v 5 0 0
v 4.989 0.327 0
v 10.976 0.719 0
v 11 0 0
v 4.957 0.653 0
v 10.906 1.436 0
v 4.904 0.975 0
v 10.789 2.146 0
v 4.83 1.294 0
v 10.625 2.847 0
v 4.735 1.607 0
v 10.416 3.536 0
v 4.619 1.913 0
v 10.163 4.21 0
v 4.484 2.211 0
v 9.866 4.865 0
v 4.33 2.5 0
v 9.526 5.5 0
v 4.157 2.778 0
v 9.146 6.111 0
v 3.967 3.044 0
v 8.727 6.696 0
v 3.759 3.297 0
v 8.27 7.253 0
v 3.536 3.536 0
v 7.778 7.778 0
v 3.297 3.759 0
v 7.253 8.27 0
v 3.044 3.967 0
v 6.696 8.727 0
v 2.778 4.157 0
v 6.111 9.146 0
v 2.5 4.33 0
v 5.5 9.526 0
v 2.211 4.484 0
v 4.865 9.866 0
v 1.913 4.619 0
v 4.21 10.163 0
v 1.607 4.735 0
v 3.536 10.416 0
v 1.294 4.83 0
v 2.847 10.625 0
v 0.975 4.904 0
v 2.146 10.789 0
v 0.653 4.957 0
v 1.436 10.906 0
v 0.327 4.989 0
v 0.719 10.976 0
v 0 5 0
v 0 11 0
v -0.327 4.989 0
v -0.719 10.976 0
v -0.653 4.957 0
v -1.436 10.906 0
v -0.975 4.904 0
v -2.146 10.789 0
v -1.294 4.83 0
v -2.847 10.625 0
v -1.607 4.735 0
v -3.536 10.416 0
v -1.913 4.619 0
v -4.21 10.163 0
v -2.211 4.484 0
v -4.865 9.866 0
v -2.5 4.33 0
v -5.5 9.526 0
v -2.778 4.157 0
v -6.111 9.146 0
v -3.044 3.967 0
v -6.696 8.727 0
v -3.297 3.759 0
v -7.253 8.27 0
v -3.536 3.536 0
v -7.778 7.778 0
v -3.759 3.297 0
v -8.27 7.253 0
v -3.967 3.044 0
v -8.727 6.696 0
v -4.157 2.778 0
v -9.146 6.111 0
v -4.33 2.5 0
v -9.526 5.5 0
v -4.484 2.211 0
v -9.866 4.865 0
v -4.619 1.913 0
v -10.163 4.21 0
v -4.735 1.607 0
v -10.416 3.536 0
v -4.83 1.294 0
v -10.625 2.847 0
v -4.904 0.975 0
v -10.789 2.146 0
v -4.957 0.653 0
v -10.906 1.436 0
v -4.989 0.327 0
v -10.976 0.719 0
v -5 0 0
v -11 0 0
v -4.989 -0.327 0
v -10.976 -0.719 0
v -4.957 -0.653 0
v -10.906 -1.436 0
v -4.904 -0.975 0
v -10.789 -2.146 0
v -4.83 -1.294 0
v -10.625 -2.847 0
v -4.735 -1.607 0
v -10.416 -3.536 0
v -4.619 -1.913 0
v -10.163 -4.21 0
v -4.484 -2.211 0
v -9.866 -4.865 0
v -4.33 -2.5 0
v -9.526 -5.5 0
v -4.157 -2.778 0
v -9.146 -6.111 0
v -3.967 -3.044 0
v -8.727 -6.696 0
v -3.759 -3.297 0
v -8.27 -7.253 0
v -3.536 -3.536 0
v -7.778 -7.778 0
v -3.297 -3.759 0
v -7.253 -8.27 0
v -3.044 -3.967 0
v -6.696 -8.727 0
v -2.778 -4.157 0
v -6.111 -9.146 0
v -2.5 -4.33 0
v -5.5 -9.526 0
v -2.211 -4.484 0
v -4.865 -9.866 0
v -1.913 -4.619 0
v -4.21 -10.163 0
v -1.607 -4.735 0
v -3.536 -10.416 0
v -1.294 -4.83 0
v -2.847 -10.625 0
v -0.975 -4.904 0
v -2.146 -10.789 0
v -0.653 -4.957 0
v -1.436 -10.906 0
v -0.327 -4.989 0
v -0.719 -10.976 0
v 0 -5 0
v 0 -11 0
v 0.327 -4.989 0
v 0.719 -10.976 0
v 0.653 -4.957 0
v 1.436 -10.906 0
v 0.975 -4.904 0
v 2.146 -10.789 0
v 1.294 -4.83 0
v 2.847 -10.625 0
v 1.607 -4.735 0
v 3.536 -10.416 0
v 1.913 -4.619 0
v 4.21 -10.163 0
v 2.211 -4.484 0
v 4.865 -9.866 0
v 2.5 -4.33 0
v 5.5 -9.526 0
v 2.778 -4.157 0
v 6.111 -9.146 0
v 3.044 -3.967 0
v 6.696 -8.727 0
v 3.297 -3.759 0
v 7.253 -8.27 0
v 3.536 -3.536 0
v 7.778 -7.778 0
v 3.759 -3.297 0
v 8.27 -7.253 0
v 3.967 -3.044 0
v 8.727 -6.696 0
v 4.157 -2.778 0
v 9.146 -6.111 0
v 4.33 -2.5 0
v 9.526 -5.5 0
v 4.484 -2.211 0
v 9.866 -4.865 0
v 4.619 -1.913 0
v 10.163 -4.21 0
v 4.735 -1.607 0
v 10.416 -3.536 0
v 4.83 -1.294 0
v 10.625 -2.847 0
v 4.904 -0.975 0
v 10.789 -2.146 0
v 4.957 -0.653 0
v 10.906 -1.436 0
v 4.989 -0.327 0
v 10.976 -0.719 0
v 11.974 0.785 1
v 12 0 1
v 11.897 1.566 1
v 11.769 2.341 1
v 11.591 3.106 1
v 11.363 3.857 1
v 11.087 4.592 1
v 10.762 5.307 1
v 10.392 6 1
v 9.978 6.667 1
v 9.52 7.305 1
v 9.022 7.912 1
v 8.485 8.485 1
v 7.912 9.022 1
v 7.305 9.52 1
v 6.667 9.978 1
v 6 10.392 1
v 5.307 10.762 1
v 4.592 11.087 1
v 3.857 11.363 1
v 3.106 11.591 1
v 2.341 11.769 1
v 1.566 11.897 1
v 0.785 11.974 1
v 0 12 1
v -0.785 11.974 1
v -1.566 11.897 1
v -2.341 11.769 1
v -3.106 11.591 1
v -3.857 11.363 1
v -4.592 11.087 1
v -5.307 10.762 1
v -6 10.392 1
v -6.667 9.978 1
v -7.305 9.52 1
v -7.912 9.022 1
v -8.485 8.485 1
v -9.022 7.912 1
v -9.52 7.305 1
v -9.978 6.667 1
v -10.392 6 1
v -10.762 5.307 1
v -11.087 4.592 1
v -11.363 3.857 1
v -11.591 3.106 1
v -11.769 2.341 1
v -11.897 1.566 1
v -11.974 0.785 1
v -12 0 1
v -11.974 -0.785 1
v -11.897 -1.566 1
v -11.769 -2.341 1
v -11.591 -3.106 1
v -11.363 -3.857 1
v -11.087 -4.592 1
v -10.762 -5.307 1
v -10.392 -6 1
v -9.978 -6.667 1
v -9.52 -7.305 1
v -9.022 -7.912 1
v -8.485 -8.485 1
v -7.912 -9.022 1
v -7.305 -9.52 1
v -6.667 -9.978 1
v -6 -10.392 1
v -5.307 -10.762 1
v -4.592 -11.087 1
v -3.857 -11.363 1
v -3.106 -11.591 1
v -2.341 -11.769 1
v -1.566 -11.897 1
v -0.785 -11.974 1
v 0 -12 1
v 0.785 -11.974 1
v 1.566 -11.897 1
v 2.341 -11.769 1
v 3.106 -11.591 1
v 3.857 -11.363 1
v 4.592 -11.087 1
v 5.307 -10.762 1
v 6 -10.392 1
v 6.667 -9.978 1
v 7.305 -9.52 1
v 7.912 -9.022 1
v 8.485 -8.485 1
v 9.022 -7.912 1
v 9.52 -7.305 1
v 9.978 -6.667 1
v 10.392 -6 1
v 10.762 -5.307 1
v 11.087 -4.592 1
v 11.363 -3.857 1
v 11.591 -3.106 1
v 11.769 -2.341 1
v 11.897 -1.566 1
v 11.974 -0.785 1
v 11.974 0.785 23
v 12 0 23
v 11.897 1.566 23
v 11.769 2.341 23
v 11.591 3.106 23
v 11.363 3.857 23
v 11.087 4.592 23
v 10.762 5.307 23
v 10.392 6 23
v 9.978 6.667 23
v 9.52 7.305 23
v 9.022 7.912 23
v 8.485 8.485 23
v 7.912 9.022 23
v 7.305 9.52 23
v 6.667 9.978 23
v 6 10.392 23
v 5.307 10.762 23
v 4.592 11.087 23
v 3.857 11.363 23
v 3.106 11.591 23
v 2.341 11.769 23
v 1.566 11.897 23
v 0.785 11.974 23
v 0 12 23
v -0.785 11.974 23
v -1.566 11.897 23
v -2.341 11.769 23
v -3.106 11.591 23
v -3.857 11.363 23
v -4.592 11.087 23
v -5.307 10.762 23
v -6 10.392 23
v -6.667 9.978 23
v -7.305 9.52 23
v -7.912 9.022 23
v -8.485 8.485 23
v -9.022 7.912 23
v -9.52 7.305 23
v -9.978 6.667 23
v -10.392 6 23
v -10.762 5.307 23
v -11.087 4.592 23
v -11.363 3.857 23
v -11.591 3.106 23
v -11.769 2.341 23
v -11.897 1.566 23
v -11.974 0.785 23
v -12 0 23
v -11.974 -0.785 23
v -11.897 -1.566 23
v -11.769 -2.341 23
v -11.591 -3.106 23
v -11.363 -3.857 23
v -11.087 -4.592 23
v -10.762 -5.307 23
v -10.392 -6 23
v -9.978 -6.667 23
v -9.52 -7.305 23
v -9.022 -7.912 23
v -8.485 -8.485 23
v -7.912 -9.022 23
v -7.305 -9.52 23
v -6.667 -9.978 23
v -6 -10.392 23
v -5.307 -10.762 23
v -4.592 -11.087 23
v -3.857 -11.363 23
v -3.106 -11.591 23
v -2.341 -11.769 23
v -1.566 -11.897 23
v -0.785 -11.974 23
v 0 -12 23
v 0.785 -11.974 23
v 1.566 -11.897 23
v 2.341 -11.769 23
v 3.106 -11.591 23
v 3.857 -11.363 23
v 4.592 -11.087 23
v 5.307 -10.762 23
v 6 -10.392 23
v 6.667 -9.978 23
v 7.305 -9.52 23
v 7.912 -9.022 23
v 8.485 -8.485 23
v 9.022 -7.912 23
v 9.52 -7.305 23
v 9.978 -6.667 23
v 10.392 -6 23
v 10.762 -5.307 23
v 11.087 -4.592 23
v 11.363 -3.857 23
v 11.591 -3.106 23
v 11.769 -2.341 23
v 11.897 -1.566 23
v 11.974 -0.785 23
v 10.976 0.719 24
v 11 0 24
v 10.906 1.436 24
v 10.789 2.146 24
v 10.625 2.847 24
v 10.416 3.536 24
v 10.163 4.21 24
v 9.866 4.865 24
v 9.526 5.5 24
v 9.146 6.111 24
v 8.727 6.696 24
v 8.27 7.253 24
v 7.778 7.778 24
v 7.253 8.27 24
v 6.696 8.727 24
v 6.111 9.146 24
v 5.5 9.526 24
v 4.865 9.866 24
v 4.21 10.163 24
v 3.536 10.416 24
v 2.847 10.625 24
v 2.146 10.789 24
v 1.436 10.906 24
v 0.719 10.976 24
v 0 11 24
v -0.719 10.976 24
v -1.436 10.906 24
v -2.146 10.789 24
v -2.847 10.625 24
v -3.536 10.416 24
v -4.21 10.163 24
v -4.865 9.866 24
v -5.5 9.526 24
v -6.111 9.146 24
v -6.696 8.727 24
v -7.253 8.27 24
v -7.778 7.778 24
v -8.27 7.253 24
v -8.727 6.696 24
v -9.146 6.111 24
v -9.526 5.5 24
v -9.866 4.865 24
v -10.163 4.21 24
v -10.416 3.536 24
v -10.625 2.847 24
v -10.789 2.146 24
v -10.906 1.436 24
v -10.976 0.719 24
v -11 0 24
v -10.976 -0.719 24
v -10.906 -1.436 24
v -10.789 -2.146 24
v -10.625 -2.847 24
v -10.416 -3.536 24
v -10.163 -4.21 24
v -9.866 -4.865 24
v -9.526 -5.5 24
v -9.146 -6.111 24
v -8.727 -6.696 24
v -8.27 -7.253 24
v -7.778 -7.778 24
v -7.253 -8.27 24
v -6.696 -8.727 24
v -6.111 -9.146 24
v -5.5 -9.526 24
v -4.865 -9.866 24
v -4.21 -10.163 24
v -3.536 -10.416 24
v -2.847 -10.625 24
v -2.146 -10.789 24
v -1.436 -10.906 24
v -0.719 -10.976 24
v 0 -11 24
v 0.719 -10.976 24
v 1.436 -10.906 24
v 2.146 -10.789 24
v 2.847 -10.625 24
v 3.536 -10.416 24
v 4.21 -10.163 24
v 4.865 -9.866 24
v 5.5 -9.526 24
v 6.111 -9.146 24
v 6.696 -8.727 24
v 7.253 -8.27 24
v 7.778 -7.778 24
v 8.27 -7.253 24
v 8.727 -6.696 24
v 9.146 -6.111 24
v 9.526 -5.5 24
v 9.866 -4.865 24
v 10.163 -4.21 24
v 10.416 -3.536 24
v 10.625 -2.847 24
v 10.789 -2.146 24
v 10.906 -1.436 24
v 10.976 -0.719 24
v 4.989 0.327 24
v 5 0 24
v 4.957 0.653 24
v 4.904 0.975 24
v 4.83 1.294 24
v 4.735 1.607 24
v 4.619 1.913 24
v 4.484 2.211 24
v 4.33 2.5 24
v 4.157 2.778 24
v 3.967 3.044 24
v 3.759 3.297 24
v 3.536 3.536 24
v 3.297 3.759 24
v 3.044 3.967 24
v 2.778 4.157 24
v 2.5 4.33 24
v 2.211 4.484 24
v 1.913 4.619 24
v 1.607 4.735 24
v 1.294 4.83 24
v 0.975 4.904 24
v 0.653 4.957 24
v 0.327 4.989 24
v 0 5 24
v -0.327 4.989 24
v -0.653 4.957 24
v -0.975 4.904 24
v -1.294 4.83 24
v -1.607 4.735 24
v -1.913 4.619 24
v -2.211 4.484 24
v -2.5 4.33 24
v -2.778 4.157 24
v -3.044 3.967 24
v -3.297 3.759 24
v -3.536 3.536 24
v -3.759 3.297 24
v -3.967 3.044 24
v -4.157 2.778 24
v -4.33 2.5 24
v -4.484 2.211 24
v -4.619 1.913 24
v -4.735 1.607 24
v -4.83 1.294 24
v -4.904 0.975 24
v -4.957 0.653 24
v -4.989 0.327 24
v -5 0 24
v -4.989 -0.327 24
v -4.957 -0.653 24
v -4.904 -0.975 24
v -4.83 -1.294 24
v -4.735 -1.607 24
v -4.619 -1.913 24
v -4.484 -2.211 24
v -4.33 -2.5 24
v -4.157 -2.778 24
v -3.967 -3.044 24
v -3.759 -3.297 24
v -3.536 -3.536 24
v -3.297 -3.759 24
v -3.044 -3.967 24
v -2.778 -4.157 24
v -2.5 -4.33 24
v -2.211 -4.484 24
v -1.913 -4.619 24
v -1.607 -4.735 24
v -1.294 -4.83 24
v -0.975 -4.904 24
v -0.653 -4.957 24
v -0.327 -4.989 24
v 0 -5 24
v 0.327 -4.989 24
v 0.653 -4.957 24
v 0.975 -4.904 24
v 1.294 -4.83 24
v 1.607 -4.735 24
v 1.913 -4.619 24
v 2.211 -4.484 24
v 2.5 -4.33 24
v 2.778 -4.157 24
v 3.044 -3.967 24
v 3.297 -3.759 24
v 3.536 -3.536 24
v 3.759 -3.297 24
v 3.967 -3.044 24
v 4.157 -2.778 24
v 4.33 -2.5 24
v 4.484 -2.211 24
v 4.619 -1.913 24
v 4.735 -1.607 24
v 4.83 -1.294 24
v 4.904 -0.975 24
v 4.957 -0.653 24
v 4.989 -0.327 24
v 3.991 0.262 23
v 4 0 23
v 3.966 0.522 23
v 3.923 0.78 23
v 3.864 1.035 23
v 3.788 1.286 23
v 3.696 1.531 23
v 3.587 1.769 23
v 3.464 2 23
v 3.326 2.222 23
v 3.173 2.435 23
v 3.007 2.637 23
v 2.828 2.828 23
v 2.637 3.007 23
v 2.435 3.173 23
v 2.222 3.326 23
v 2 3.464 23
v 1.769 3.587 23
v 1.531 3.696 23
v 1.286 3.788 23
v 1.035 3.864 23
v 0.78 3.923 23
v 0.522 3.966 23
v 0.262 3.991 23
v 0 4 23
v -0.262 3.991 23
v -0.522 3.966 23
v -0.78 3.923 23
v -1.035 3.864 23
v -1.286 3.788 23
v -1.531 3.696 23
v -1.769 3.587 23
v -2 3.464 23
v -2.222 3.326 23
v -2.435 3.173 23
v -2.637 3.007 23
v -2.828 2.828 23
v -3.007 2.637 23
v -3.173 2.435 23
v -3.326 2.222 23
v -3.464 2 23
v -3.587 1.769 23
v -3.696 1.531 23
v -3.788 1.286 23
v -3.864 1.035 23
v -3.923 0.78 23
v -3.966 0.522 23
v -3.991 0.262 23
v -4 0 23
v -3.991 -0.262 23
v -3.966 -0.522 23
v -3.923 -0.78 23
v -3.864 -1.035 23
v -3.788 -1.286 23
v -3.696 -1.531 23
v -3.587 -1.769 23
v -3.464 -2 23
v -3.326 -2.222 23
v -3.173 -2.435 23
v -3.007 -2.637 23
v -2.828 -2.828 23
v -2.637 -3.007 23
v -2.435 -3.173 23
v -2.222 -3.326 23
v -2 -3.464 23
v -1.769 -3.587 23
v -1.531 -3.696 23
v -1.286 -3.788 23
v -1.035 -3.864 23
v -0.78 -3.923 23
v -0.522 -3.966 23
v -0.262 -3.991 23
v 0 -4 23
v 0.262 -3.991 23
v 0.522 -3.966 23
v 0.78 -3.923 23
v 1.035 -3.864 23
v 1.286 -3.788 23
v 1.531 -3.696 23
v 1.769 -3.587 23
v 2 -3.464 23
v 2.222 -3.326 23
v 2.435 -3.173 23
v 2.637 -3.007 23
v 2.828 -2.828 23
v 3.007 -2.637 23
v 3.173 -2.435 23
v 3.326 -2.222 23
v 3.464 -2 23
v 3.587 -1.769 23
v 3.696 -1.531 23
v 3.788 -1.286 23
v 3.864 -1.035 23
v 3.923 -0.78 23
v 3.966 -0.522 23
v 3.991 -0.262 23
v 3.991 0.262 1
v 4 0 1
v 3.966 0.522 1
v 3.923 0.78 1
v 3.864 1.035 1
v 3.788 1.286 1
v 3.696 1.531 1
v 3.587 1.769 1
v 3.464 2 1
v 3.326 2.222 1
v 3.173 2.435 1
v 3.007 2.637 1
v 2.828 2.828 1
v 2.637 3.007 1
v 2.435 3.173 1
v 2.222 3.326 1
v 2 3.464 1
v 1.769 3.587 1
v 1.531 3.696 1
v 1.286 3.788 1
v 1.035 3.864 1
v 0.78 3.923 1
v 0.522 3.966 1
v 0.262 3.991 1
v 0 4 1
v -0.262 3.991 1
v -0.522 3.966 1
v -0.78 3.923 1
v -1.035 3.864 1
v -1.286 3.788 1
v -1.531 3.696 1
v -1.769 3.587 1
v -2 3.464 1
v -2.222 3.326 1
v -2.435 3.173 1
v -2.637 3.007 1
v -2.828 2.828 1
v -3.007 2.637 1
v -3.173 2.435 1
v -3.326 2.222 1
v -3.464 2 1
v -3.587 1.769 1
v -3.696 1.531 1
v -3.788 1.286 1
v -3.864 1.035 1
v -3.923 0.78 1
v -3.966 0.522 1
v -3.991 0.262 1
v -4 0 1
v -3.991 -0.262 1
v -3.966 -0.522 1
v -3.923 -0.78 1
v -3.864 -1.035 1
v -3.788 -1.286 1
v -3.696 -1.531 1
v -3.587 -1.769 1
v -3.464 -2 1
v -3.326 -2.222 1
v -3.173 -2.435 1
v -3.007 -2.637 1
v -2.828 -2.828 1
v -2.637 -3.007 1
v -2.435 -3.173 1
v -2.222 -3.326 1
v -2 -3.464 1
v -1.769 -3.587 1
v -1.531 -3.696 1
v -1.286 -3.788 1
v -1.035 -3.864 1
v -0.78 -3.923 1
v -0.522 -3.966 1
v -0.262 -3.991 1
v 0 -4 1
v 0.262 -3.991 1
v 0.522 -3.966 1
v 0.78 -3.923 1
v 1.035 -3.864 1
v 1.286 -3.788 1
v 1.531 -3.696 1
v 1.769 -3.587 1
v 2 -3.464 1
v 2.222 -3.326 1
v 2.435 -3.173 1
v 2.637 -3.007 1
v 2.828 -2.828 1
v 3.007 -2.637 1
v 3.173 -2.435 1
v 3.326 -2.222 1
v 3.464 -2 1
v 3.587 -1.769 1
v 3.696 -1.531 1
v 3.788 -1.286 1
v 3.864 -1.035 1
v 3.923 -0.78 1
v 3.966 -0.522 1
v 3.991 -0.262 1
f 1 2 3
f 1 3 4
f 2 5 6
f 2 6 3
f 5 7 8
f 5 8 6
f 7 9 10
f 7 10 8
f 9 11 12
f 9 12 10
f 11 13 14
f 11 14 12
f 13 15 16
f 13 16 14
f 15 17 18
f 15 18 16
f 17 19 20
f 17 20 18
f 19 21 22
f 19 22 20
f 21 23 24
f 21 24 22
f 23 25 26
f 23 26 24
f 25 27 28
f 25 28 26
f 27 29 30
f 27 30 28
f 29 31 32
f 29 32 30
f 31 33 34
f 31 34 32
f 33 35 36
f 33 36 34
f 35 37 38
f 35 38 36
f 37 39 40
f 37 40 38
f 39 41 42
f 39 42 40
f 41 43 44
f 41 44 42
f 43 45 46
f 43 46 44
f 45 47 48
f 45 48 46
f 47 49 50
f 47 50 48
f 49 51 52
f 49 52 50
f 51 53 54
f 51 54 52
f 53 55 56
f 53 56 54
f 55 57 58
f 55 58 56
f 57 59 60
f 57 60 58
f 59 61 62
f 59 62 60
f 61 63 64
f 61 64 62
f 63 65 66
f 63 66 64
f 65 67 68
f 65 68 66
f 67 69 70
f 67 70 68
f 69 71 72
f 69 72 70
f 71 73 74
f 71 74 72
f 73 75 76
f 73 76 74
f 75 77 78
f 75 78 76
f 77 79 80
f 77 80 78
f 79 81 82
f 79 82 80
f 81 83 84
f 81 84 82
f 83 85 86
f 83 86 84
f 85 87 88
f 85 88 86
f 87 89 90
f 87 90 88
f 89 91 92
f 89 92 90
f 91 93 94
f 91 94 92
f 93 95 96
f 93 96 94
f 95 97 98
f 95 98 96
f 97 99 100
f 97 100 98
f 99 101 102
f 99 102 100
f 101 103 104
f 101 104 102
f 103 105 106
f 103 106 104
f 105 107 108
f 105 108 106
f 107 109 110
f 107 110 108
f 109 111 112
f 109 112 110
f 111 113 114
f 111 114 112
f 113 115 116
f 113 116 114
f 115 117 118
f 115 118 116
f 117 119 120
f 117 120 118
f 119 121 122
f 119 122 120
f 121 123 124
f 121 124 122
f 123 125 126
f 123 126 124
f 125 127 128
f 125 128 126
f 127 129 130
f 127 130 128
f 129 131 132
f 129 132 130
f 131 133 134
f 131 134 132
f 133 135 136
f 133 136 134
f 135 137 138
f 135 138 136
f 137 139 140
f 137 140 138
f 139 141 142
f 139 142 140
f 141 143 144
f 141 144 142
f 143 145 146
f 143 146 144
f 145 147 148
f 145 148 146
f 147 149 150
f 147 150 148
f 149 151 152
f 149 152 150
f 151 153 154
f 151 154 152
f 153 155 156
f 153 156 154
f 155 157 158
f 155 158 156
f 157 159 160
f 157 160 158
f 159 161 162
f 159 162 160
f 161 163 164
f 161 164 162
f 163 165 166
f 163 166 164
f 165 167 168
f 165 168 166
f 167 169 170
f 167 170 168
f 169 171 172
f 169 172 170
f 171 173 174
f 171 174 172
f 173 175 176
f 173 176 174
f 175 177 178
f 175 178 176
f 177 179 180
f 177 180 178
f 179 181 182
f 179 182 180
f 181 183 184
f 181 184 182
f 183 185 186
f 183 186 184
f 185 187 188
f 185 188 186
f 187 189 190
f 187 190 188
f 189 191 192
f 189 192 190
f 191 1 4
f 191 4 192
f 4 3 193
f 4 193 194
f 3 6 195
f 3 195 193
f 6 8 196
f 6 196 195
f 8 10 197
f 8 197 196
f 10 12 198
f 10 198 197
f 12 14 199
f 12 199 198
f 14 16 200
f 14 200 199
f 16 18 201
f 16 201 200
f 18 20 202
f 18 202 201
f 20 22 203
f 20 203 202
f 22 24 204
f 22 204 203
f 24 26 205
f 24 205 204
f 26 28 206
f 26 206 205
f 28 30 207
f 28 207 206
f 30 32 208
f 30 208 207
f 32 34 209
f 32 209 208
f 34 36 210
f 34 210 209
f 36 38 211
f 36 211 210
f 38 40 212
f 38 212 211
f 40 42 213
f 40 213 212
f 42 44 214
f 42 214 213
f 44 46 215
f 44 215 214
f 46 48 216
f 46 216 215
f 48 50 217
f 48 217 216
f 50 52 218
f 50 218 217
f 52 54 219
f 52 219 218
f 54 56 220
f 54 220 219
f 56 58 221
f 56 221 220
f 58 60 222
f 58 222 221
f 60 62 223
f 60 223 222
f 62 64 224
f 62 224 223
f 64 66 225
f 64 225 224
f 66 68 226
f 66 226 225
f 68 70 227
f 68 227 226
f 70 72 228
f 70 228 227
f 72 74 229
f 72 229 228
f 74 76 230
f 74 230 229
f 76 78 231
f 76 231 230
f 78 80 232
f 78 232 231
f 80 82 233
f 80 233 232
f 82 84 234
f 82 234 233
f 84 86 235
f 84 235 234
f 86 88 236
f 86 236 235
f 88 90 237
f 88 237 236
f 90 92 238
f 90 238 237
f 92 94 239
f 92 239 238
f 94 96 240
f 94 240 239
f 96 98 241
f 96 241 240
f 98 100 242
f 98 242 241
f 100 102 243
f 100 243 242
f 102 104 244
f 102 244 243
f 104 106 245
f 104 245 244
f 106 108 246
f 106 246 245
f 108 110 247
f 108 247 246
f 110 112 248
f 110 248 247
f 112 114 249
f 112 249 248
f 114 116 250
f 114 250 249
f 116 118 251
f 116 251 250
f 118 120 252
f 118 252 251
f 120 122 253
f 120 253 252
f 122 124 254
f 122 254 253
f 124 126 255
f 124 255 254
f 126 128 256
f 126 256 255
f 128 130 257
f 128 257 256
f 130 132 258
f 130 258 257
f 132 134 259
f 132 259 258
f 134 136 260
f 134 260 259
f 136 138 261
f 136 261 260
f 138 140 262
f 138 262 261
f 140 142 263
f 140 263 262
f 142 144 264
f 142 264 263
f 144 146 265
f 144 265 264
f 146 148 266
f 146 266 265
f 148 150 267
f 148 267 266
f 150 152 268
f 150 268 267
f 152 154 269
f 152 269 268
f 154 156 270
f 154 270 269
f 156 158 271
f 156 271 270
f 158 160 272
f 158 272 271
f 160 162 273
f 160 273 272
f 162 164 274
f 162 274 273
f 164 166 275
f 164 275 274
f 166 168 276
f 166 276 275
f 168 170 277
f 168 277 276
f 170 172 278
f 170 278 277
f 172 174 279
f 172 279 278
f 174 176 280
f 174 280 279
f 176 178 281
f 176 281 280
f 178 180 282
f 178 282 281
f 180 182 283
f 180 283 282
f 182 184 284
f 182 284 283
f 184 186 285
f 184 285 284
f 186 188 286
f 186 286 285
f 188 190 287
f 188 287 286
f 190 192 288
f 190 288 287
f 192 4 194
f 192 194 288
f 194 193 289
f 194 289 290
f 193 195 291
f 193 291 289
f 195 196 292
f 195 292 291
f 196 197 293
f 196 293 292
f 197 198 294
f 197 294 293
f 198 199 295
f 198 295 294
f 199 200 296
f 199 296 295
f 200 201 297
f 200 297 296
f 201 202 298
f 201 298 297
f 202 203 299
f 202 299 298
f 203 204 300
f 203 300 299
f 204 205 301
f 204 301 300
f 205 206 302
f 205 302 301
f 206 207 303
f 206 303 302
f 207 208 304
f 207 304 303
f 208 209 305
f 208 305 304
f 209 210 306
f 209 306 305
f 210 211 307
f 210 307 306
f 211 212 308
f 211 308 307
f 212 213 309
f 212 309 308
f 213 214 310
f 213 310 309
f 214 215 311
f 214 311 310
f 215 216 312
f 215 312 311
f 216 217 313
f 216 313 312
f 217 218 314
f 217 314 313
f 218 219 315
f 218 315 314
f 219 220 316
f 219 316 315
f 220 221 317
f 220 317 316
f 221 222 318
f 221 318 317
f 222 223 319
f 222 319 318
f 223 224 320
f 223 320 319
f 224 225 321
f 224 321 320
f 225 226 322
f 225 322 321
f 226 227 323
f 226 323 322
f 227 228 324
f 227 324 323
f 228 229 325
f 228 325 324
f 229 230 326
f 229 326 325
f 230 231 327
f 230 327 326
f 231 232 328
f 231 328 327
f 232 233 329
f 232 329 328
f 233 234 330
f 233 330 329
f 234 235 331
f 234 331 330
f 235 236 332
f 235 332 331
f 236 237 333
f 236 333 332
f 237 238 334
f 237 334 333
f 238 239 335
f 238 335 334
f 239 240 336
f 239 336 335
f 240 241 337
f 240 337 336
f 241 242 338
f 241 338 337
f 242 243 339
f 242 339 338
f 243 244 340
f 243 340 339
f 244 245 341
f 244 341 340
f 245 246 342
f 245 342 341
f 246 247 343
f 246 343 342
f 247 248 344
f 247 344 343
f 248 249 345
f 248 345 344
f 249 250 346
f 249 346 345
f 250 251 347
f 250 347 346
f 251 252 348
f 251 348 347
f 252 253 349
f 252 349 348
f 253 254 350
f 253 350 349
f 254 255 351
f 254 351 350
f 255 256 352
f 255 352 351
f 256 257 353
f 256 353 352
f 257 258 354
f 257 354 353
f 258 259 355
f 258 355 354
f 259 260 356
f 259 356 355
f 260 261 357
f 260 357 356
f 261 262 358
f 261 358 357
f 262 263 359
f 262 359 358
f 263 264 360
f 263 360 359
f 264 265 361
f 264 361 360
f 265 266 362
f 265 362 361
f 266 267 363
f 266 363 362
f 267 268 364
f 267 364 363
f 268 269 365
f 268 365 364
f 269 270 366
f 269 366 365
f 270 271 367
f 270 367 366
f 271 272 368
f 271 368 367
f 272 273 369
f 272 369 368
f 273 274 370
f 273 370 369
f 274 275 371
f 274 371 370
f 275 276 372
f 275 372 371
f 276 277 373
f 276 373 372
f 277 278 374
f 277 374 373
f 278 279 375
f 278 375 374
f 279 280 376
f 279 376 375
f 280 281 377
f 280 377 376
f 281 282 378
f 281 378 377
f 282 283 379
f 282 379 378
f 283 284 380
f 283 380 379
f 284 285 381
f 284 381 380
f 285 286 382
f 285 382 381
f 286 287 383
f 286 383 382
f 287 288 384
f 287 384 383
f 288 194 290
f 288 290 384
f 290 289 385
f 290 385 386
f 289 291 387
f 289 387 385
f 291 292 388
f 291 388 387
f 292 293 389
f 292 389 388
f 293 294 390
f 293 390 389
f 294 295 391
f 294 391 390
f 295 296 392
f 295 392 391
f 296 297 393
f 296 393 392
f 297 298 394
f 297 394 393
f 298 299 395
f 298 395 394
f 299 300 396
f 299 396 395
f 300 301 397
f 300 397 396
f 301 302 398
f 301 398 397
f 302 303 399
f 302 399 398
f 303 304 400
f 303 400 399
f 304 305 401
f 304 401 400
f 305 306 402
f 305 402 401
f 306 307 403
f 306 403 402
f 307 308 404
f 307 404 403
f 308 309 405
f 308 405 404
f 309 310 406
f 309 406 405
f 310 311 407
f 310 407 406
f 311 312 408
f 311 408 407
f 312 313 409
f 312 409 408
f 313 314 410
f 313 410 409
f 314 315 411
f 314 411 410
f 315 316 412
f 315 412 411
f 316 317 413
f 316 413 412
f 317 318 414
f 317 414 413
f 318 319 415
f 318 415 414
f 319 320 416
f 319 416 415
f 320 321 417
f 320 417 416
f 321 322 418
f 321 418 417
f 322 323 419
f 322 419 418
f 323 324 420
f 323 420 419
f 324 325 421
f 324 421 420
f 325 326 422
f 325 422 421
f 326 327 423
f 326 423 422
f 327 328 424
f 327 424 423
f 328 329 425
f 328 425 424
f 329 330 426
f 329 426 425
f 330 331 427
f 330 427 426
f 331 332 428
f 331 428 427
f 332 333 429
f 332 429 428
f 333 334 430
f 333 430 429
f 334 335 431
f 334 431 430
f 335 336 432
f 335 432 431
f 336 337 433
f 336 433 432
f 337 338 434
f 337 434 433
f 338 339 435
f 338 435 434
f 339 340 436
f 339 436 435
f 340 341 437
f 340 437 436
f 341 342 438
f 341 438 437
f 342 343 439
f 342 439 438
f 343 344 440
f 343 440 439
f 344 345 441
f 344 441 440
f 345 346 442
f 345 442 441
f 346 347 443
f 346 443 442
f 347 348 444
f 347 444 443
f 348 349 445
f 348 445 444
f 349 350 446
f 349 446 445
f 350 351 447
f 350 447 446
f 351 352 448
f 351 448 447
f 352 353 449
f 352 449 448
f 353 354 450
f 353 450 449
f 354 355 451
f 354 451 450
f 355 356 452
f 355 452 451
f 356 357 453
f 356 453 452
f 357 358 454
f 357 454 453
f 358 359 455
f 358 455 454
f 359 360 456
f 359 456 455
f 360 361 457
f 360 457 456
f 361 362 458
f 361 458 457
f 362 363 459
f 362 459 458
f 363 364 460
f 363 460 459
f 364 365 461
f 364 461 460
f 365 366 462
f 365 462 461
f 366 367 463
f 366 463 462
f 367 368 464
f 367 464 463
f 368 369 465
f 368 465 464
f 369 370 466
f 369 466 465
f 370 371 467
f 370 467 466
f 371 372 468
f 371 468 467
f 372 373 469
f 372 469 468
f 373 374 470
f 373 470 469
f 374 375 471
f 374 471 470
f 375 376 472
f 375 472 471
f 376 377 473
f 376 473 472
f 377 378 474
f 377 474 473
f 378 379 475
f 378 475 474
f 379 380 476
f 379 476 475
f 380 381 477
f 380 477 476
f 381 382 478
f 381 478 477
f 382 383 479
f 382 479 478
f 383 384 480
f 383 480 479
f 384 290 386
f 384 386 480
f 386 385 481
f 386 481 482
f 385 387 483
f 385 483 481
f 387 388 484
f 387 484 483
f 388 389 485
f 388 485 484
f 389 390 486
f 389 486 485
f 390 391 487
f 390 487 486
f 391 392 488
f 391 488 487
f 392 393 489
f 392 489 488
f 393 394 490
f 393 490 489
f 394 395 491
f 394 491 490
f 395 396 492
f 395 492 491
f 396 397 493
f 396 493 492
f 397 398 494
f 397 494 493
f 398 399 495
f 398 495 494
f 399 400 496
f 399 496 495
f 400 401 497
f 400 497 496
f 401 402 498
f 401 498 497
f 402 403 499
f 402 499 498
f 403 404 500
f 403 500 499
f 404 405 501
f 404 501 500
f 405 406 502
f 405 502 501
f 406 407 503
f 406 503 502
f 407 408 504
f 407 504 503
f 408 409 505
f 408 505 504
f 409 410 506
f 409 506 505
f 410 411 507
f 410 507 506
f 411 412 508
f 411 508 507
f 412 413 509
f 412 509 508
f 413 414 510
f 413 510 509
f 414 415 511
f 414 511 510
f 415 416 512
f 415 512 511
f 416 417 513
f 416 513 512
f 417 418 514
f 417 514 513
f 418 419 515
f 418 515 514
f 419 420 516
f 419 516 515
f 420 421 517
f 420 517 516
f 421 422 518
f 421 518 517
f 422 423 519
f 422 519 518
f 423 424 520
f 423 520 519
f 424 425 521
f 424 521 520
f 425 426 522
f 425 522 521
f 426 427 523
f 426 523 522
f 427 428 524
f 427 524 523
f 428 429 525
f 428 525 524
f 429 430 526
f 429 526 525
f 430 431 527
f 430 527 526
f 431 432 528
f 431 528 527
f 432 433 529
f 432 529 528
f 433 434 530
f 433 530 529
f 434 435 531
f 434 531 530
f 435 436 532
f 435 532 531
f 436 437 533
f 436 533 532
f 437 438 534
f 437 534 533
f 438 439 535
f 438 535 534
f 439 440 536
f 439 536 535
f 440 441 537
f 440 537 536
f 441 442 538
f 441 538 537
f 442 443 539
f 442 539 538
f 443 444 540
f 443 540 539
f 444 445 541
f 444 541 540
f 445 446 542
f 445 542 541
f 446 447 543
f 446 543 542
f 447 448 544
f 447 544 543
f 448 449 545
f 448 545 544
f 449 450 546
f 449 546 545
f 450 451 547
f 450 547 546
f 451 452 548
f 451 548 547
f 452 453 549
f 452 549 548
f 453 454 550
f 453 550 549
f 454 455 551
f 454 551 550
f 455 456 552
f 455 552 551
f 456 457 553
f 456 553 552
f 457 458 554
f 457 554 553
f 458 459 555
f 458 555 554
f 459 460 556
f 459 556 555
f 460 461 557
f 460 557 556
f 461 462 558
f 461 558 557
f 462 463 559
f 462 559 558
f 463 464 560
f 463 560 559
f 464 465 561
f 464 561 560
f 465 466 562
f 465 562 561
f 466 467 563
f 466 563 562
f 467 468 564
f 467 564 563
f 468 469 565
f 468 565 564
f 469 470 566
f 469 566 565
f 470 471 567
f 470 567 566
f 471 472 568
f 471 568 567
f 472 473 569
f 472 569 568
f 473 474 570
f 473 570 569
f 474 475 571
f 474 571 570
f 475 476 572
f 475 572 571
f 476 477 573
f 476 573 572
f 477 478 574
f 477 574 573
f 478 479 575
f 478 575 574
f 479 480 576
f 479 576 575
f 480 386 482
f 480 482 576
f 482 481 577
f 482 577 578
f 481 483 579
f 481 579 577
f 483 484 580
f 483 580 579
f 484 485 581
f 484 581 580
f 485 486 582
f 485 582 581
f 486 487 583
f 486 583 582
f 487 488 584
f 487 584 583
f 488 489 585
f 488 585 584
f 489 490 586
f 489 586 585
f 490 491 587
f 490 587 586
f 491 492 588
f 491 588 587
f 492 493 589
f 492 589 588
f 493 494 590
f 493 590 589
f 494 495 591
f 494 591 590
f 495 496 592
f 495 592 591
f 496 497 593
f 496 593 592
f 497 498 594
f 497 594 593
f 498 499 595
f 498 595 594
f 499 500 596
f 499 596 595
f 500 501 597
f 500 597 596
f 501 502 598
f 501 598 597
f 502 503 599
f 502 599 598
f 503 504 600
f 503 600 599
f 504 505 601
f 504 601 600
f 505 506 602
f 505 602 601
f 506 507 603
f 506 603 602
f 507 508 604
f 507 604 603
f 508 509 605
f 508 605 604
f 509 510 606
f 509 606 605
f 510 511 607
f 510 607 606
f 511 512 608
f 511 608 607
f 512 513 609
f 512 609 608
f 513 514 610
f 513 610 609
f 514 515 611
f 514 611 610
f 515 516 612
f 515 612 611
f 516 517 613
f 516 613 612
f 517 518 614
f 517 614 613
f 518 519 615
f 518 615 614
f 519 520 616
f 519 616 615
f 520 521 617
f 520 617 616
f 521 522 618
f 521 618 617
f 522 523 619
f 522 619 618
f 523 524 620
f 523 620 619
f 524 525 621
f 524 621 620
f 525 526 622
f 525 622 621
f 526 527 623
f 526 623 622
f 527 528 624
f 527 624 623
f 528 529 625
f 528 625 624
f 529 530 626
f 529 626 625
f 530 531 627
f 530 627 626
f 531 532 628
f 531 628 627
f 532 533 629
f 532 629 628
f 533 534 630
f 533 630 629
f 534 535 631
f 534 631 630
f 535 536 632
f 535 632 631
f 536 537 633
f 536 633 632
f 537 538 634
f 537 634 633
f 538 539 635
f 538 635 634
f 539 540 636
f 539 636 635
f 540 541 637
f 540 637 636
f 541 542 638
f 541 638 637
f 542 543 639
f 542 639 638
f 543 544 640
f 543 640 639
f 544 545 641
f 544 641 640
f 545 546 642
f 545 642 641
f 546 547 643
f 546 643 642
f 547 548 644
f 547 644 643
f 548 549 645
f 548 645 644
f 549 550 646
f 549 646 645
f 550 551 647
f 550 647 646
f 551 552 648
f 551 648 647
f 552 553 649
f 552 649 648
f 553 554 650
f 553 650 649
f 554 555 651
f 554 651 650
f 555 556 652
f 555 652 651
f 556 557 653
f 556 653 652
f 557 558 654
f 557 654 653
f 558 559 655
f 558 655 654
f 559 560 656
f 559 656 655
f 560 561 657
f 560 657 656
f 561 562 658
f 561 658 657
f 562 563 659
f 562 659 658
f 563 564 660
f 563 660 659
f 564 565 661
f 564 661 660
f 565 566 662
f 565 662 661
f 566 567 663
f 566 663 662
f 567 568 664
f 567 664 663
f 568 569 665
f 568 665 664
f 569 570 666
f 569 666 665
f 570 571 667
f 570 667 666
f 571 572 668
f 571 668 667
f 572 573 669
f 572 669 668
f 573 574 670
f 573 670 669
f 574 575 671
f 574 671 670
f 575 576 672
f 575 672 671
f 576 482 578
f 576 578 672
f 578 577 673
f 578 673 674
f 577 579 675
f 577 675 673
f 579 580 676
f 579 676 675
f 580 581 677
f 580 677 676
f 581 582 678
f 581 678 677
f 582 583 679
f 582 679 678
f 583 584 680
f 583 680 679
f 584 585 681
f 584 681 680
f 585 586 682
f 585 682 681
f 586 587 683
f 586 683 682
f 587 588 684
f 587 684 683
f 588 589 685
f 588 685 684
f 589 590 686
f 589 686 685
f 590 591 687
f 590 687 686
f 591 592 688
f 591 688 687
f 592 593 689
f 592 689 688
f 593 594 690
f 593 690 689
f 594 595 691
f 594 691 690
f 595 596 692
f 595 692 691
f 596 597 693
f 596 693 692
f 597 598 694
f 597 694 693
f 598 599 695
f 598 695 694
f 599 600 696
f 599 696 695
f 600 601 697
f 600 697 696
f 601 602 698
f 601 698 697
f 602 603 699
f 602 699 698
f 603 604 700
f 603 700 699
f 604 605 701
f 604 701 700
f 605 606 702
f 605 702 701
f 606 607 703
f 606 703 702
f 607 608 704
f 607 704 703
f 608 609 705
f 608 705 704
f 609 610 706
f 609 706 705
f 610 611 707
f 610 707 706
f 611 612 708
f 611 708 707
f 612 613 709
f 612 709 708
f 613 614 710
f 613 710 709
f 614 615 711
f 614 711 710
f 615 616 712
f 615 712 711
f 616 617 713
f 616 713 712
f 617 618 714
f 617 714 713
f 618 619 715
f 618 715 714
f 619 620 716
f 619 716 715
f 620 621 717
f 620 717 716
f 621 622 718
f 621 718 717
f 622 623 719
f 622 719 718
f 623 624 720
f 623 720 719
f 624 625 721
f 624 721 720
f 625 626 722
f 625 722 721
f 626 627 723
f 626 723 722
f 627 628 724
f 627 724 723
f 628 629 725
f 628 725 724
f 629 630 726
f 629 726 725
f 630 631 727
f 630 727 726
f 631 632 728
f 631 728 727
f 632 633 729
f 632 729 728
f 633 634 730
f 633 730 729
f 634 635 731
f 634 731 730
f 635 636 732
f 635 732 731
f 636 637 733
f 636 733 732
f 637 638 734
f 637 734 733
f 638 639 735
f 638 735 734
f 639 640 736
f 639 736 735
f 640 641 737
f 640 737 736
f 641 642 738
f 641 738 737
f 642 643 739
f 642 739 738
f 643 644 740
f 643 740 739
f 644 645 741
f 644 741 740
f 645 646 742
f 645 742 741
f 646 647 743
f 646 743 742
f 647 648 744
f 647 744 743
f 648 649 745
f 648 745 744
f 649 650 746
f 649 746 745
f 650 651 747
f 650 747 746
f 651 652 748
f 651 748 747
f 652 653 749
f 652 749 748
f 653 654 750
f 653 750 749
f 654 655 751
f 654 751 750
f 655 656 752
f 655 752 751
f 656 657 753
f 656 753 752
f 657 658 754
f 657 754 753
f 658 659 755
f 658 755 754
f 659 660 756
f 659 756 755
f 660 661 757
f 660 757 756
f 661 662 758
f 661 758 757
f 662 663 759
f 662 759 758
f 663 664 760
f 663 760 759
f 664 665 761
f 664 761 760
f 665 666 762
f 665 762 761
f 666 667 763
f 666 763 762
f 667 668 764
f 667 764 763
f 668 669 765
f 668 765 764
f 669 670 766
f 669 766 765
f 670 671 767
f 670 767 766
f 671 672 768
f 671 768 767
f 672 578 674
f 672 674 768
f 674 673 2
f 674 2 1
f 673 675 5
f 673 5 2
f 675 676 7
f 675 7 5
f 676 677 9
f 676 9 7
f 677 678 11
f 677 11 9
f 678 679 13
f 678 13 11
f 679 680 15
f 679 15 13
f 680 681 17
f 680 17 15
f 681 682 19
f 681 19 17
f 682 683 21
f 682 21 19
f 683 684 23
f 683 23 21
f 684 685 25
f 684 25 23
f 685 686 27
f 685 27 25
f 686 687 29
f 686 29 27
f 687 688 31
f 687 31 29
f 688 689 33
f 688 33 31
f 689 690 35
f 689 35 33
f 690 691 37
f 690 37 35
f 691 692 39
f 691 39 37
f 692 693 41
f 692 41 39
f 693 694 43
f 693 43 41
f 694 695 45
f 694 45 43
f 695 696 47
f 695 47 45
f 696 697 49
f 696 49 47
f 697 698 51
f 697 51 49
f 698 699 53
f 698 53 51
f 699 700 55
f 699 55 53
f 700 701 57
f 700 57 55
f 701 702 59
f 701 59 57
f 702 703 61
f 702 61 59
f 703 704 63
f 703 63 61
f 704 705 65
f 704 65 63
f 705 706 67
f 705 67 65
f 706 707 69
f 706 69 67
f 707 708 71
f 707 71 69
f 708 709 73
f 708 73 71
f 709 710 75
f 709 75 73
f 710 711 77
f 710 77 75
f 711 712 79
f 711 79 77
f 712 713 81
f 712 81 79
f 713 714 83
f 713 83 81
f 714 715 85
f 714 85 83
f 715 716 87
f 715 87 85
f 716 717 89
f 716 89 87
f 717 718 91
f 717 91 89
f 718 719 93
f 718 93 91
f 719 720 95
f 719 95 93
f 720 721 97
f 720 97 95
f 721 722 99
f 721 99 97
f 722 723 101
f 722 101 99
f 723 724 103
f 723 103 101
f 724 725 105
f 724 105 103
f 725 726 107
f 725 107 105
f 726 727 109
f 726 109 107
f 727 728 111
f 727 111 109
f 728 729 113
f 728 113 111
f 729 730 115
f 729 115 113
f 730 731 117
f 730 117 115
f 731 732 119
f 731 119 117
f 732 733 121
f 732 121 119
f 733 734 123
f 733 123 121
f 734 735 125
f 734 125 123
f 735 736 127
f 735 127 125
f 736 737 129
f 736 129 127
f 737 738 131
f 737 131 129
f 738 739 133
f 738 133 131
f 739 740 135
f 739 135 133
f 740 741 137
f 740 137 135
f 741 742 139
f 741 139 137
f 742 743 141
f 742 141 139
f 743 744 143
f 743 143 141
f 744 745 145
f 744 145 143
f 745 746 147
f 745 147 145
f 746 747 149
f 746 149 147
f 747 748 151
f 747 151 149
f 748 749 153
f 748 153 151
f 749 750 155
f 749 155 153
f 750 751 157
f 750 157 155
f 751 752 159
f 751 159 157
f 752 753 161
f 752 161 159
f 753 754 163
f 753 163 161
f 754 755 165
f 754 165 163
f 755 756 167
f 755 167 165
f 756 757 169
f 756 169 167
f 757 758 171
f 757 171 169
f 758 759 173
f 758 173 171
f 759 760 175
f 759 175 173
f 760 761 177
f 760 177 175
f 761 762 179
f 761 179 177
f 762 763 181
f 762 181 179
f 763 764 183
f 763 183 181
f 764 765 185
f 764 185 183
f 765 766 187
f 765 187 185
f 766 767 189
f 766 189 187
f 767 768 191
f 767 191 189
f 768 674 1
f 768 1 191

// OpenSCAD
// Original MechIntel educational model. CC0-1.0. Units: mm.
// Not a standardized or load-rated component.
$fn=96;
// Section points: [radius, height], mm. Edit to change the profile.
section=[[5, 0], [11, 0], [12, 1], [12, 23], [11, 24], [5, 24], [4, 23], [4, 1]];
rotate_extrude($fn=96) polygon(points=section);
